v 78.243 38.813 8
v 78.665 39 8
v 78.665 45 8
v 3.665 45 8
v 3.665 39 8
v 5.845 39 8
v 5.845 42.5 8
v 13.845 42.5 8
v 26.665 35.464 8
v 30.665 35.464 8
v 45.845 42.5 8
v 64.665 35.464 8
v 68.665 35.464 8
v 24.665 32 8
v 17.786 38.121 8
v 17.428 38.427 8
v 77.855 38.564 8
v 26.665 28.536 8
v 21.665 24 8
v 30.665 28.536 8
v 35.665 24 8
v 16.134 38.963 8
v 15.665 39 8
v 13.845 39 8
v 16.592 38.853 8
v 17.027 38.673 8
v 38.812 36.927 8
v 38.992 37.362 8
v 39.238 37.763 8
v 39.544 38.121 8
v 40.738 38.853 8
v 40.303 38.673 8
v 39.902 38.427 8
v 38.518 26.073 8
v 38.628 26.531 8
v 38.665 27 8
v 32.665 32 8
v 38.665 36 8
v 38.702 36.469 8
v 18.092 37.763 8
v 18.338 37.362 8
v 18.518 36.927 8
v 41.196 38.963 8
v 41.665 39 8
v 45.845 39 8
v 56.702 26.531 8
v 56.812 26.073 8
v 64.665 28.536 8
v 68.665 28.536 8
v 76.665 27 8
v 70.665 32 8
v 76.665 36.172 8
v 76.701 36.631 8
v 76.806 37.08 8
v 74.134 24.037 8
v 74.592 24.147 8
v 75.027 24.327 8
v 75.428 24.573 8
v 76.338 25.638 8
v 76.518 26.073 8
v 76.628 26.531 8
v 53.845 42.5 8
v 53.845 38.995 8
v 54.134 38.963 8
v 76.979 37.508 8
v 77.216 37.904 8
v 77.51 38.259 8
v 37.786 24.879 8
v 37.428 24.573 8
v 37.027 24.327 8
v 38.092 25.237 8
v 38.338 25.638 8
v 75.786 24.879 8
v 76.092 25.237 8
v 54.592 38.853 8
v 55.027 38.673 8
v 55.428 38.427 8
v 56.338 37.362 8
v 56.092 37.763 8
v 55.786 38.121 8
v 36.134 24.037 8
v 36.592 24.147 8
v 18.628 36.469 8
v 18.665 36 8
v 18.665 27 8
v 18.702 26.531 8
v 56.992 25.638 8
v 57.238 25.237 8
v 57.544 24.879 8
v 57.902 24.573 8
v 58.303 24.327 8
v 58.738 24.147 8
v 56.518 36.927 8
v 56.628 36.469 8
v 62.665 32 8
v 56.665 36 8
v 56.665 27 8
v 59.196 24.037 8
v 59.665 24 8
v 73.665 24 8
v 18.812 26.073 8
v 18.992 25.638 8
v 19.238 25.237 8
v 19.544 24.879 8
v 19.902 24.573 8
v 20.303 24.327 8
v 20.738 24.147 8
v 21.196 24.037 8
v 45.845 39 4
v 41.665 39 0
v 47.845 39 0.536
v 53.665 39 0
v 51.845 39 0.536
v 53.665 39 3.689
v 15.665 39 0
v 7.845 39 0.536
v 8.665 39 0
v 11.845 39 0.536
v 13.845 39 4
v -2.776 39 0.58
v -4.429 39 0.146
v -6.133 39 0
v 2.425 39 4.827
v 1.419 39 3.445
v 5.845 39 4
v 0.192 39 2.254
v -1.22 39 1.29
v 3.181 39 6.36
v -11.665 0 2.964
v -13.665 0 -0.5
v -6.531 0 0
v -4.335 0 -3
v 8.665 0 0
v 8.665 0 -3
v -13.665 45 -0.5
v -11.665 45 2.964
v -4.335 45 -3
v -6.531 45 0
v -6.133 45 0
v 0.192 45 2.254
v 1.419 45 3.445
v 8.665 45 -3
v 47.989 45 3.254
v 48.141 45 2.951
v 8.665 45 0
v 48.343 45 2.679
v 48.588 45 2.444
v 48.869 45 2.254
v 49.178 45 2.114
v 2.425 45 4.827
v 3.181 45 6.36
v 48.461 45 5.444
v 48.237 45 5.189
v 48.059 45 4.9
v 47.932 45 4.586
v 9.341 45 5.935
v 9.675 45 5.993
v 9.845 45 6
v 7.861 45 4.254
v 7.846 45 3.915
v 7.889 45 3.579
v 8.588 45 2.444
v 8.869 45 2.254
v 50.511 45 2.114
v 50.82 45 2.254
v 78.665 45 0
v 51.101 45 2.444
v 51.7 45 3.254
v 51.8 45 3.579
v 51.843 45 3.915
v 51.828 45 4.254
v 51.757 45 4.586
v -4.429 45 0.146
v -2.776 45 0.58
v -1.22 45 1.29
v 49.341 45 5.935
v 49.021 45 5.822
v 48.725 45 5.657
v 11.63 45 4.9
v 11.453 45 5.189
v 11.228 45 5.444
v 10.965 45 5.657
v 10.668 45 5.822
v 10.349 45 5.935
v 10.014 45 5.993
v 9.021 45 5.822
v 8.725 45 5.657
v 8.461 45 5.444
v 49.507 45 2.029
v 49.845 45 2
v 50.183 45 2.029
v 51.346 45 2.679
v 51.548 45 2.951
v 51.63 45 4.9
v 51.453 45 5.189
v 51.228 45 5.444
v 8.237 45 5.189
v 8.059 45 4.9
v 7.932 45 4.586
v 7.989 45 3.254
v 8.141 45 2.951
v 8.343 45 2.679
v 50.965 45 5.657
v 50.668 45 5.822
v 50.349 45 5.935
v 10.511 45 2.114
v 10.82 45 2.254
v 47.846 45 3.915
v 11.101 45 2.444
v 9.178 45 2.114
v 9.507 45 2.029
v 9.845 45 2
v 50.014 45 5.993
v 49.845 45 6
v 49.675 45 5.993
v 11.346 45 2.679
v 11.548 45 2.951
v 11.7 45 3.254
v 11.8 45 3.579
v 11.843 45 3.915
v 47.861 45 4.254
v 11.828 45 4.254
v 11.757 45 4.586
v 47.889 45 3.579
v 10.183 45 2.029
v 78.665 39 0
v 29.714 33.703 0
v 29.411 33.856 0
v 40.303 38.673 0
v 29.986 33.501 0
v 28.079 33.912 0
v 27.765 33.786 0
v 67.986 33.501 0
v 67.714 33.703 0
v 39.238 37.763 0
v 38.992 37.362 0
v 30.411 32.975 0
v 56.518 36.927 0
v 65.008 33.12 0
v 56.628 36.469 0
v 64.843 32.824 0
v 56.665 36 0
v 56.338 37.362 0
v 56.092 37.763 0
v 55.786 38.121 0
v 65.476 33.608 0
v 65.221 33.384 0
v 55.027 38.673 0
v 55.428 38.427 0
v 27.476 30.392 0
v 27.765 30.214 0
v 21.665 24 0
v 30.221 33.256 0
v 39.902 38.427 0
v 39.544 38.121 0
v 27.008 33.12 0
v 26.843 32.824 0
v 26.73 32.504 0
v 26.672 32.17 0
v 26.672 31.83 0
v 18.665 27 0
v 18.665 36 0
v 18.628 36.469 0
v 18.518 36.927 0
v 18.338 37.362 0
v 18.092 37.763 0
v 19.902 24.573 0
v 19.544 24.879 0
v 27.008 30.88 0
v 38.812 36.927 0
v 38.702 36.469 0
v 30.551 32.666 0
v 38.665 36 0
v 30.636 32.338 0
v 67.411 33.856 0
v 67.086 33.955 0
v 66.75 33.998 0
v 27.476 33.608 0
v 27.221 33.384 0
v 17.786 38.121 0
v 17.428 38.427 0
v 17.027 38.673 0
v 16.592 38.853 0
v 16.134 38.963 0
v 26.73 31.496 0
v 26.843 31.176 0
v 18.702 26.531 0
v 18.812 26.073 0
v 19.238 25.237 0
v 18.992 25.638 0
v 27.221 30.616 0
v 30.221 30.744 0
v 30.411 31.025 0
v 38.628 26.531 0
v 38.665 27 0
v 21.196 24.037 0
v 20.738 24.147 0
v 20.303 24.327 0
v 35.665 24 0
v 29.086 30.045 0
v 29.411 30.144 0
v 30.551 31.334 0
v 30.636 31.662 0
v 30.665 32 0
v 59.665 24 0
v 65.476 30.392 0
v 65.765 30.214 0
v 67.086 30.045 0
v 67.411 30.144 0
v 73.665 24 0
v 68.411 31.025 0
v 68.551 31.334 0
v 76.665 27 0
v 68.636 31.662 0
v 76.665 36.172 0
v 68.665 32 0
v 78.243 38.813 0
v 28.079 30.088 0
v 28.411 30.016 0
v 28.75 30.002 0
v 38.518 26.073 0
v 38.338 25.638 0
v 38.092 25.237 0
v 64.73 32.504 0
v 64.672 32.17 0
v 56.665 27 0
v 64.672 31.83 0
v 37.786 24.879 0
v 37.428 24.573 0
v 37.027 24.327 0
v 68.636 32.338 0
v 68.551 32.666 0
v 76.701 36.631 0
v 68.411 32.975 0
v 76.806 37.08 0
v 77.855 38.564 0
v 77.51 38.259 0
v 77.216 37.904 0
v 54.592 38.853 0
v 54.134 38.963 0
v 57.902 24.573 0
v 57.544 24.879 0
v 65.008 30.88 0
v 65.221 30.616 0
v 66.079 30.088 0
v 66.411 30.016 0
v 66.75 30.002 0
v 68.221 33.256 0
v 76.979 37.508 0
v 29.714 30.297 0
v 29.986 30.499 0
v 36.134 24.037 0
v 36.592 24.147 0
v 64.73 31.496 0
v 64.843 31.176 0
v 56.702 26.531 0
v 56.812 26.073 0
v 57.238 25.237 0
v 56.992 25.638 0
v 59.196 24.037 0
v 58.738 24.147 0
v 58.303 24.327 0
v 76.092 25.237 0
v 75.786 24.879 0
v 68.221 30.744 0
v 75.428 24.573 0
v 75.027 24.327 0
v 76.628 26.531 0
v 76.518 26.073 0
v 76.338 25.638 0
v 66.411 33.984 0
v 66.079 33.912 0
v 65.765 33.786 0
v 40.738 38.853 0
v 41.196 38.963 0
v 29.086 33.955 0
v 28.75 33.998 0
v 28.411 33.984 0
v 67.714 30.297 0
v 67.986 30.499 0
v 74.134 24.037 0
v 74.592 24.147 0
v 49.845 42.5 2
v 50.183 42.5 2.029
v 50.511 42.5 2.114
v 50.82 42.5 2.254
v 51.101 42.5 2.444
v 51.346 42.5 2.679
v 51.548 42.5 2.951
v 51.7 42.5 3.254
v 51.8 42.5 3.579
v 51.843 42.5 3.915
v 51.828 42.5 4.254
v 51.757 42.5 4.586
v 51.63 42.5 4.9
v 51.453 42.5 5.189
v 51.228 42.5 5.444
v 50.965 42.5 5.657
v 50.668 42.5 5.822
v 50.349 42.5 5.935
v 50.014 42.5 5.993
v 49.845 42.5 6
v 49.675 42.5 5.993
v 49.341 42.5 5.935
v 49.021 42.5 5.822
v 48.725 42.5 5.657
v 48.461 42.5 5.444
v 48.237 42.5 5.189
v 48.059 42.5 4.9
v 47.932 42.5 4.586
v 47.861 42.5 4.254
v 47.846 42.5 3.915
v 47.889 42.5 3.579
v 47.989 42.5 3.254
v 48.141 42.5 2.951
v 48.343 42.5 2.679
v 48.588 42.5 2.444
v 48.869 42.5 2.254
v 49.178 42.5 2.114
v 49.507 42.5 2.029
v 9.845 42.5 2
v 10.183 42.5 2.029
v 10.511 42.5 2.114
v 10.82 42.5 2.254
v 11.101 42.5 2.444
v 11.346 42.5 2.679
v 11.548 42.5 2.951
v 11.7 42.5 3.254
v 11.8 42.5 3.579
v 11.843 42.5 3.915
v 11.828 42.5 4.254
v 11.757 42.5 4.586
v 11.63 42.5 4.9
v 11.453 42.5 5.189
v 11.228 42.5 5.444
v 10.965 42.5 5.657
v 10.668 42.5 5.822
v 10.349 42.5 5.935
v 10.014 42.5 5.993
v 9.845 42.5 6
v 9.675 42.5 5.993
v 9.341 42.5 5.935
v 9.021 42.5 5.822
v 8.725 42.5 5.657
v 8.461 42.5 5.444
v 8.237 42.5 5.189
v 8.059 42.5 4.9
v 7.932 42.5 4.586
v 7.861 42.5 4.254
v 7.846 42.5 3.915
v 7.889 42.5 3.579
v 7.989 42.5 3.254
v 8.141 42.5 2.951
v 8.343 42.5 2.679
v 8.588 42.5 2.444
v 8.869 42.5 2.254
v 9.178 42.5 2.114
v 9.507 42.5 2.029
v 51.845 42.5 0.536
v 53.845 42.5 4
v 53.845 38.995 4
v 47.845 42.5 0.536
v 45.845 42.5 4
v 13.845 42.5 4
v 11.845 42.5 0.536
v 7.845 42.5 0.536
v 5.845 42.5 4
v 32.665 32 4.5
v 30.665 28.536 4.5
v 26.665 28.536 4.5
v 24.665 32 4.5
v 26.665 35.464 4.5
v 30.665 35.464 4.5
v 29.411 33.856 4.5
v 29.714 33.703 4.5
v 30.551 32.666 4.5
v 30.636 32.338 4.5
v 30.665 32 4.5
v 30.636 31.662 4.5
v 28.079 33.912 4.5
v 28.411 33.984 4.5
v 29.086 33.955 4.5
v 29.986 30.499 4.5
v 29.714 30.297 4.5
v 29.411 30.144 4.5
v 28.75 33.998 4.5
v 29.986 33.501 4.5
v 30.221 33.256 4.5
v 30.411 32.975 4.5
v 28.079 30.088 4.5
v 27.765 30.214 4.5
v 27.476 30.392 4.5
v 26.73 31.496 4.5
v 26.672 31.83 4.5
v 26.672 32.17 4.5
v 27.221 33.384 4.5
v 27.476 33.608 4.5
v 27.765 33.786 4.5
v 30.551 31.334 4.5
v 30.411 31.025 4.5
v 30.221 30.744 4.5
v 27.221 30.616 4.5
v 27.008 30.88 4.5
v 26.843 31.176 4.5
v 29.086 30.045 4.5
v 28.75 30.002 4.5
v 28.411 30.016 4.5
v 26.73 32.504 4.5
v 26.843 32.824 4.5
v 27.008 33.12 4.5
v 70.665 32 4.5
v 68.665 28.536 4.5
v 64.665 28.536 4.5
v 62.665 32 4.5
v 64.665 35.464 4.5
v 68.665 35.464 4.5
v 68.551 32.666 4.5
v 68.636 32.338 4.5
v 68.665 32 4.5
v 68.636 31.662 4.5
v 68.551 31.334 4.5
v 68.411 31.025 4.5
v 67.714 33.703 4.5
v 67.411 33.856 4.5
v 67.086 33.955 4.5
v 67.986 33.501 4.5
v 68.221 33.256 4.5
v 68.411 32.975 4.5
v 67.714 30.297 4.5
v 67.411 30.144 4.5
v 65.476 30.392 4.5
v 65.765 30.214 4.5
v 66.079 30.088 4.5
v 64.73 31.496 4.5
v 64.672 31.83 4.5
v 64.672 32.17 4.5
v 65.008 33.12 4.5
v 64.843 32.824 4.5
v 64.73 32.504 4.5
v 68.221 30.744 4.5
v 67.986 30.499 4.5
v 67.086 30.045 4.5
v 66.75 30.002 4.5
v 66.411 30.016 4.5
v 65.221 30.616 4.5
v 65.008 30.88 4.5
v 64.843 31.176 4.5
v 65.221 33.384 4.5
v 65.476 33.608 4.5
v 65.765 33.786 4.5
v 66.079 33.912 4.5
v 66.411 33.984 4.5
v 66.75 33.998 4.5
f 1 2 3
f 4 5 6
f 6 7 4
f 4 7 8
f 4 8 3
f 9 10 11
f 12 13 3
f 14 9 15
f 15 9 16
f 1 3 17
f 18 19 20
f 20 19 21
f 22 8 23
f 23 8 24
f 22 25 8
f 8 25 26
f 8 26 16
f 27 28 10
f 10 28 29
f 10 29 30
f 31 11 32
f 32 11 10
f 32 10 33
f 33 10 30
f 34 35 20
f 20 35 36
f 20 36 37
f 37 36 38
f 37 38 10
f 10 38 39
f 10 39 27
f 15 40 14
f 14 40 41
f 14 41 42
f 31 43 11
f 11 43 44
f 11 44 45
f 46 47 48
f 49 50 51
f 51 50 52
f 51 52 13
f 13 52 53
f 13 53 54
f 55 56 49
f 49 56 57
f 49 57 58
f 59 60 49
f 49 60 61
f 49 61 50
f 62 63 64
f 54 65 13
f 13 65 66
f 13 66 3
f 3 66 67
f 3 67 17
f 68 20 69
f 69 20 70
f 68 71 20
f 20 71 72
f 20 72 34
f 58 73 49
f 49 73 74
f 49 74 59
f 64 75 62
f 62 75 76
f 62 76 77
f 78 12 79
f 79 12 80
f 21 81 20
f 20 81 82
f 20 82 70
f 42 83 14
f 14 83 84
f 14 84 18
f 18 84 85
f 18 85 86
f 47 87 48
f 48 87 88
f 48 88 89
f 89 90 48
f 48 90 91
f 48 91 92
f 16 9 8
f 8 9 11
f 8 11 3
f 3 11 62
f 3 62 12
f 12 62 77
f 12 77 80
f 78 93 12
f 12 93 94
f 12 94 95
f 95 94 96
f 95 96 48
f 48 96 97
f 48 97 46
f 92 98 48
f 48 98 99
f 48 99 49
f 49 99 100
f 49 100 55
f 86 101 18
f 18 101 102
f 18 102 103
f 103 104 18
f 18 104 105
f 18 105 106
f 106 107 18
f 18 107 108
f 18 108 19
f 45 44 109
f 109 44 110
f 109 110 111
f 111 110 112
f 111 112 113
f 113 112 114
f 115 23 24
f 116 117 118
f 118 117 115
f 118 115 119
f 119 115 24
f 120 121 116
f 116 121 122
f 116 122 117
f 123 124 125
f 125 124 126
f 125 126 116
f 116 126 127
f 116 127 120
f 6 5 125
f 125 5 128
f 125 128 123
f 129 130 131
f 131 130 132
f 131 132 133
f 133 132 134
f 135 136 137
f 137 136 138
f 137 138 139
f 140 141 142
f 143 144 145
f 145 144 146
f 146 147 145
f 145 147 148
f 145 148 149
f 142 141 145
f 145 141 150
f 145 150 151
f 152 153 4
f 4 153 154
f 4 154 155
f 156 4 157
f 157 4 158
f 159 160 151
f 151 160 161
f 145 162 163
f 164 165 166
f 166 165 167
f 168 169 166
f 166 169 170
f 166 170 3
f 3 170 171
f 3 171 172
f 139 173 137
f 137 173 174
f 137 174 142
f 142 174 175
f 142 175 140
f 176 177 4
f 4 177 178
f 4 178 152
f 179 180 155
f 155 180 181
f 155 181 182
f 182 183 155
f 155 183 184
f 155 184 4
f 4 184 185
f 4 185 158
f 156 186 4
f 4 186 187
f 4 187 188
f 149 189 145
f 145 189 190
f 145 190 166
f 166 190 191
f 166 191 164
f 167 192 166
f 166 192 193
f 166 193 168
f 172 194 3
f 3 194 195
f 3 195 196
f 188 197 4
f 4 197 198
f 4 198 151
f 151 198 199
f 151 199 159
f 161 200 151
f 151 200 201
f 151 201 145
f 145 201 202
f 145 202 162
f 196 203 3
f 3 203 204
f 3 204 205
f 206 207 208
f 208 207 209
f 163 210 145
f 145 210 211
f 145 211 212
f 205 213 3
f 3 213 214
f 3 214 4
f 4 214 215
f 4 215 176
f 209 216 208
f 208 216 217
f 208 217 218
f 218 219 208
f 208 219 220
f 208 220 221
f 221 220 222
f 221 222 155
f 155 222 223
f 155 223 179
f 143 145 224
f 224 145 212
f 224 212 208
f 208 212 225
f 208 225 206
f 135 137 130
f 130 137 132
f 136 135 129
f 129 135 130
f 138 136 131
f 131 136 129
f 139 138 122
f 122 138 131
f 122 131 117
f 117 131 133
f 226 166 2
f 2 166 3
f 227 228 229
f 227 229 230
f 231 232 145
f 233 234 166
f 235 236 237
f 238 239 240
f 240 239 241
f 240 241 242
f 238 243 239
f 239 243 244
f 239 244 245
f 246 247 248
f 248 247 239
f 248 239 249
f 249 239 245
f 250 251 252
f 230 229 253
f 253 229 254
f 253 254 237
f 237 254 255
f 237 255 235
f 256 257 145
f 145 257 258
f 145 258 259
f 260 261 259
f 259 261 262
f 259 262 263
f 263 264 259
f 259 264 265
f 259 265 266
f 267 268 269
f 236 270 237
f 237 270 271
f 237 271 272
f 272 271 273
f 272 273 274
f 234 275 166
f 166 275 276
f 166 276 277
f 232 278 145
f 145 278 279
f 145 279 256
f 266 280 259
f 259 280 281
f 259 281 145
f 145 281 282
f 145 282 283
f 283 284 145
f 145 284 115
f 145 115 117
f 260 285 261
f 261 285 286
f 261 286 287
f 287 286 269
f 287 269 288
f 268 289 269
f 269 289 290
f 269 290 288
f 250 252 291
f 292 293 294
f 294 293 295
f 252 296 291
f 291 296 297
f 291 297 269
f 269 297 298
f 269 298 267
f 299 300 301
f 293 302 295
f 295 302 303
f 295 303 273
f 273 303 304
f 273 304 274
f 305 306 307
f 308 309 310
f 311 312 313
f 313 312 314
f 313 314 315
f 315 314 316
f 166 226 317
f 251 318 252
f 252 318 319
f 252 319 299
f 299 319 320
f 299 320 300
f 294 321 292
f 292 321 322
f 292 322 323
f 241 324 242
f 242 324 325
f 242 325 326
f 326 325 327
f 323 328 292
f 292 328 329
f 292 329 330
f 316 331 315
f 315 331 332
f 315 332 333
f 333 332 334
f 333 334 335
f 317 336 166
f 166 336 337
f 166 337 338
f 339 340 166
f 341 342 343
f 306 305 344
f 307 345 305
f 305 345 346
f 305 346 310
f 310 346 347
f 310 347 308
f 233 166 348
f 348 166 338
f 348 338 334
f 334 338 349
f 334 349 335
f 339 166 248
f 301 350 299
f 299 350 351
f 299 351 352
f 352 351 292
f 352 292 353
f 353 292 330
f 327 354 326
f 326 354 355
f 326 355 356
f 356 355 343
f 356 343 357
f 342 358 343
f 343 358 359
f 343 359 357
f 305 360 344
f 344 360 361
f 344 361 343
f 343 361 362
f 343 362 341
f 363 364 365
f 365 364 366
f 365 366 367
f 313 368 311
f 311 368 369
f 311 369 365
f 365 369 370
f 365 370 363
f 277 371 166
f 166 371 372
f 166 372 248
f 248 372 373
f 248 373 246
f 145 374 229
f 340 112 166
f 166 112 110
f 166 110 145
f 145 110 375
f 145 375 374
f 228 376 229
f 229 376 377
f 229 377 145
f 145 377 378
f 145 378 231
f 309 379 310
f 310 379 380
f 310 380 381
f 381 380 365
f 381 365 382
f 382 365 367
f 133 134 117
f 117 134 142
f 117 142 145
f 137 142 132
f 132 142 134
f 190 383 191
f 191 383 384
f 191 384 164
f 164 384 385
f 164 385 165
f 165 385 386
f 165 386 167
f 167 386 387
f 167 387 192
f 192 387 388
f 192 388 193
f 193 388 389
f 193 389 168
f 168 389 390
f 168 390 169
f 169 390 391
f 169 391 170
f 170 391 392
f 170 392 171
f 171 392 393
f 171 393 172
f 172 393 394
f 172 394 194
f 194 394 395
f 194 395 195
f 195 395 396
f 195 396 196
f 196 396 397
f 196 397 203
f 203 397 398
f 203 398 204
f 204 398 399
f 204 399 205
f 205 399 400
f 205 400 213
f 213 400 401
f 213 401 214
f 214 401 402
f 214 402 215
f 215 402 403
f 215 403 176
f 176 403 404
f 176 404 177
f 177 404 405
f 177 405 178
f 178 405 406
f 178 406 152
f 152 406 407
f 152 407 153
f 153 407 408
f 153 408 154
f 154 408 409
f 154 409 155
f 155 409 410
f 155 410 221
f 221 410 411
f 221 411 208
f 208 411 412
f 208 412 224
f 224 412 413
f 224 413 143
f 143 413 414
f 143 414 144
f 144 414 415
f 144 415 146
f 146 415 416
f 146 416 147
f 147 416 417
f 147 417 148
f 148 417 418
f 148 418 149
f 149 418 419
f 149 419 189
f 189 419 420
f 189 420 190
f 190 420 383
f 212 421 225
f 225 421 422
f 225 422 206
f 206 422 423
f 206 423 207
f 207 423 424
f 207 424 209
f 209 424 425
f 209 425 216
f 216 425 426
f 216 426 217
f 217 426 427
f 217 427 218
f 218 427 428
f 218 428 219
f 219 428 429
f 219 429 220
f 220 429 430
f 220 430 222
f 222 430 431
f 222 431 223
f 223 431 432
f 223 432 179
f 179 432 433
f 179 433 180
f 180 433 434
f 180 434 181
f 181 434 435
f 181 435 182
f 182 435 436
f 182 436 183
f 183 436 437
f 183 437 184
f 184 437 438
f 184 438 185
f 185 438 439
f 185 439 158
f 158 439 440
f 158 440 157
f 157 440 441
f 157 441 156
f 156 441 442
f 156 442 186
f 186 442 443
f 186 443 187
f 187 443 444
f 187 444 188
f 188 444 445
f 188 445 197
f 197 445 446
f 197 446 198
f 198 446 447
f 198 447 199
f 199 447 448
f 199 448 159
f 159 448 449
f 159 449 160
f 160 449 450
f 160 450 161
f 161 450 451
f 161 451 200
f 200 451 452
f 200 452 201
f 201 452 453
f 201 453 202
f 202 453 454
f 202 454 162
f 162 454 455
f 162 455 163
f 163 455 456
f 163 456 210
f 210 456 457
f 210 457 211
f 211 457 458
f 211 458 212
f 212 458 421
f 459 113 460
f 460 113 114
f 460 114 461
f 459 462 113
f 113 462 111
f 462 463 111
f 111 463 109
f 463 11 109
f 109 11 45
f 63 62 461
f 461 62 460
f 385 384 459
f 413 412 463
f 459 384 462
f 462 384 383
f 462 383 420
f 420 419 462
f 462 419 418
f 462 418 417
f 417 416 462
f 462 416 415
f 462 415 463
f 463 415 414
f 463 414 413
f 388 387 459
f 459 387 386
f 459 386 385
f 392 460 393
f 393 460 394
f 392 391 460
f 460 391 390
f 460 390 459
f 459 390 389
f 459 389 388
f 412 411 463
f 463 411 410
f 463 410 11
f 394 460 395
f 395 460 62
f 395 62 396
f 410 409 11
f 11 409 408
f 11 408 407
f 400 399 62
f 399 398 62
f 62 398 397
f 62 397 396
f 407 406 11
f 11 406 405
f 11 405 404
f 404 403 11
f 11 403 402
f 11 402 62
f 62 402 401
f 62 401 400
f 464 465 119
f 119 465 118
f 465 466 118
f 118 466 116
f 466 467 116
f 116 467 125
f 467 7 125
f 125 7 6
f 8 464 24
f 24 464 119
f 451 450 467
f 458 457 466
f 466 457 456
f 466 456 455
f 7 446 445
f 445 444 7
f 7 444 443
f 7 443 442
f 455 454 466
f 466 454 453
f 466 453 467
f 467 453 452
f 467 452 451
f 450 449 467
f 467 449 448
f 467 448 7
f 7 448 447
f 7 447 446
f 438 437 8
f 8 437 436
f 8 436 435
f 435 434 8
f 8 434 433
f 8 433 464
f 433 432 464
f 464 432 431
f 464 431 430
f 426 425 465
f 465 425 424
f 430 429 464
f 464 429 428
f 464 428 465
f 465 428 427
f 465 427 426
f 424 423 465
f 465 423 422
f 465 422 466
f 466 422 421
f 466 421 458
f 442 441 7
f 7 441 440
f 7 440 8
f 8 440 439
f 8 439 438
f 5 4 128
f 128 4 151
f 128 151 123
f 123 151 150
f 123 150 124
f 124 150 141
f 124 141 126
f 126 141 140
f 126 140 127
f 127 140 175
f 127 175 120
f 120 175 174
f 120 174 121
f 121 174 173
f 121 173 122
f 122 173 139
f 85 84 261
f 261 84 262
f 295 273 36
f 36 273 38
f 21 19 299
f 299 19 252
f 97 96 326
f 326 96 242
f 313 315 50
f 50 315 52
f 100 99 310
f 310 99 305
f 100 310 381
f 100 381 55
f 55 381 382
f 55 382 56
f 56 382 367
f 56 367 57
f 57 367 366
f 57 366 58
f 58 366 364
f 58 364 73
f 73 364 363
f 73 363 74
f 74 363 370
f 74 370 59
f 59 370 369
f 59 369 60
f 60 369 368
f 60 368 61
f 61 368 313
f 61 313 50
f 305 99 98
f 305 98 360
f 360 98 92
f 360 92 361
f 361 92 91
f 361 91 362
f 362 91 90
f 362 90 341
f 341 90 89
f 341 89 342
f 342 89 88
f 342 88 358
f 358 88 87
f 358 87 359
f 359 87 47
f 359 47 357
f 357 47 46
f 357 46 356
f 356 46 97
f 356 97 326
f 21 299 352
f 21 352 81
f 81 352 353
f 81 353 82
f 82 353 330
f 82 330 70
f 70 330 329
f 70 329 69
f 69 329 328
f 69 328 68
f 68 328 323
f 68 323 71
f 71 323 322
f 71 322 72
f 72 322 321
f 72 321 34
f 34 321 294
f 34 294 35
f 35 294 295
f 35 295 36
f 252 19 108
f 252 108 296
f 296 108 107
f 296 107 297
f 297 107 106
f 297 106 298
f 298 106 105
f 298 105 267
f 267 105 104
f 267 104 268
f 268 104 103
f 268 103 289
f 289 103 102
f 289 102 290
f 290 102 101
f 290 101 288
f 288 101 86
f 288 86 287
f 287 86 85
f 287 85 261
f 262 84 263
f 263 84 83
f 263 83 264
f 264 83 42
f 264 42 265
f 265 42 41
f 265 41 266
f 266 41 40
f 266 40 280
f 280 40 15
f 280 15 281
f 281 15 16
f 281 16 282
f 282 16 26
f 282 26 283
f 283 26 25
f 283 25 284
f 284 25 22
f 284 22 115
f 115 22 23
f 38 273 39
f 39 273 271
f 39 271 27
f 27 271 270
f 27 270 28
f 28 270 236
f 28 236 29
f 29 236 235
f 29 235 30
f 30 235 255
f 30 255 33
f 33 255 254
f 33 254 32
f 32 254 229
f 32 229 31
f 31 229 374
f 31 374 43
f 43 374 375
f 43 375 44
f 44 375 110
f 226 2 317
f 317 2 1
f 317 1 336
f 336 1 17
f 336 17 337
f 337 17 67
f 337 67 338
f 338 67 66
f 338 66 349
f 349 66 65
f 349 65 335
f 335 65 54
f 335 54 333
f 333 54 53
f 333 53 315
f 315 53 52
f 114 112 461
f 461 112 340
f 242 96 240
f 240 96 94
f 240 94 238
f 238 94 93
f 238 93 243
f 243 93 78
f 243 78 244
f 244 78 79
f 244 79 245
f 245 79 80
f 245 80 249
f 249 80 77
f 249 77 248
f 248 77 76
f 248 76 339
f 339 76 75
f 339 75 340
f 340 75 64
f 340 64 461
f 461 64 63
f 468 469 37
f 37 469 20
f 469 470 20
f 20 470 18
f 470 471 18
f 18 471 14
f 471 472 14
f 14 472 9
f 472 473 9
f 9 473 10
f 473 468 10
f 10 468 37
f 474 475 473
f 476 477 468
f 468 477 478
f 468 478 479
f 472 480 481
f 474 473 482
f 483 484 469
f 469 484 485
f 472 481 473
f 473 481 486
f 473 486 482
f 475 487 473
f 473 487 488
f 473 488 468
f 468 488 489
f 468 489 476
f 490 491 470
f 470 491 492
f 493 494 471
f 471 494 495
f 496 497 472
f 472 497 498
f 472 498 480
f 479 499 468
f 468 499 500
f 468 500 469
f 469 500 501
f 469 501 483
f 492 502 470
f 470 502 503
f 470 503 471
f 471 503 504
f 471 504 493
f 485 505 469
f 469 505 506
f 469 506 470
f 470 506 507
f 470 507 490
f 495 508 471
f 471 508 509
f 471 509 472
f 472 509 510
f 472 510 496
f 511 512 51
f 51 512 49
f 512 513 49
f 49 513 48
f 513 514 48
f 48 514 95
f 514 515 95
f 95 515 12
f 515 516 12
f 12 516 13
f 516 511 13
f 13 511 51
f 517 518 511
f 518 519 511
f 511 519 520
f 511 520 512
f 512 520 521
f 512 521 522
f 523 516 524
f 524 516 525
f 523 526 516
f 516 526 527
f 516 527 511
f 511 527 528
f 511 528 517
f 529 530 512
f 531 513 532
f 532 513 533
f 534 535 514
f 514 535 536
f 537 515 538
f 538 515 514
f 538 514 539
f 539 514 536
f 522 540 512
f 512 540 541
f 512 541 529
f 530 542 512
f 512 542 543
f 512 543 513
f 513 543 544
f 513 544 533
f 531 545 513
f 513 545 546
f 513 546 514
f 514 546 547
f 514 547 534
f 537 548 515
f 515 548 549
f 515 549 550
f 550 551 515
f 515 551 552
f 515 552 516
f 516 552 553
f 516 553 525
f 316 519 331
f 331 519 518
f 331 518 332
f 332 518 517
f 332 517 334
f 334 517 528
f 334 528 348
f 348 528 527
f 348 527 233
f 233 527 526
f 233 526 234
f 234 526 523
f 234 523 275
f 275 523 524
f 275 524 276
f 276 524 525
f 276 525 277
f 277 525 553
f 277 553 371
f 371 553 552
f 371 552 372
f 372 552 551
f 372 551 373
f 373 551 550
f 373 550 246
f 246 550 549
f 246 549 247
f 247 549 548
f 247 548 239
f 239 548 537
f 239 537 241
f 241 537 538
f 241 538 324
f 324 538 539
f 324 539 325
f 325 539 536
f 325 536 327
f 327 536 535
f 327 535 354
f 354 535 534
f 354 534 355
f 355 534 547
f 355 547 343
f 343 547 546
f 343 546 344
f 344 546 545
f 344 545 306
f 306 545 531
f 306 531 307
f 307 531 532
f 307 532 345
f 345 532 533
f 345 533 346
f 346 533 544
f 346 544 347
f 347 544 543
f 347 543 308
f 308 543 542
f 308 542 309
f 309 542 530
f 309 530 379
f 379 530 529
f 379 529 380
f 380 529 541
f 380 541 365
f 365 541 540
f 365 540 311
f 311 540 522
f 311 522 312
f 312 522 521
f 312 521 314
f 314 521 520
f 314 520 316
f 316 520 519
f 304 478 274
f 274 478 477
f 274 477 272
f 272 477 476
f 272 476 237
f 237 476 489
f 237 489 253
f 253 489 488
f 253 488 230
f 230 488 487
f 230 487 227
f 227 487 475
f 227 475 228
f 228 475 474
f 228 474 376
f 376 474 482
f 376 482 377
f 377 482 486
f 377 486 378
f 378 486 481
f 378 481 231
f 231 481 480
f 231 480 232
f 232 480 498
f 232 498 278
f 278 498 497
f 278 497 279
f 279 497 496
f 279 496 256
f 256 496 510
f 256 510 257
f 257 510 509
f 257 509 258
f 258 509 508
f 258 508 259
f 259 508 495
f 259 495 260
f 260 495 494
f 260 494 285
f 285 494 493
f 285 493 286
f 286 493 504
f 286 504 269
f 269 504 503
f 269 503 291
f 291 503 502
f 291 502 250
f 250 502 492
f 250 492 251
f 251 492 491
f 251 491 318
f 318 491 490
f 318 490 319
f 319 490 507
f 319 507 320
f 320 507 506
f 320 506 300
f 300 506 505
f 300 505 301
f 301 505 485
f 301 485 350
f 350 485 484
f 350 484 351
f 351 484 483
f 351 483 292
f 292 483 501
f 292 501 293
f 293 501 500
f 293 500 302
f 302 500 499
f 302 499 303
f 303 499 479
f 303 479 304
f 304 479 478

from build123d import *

# Parameters (mm, degrees)
ESQUISSE1_R             = 2
BOSS_EXTRU_1_DEPTH      = 45
ESQUISSE2_W             = 75
ESQUISSE2_H             = 39
ENL_V_MAT_EXTRU_1_DEPTH = 8
ENL_V_MAT_EXTRU_2_DEPTH = 3.5
CONG_1_R                = 10
ESQUISSE4_W             = 20
ESQUISSE4_H             = 8
BOSS_EXTRU_2_DEPTH      = 15
CONG_3_R                = 3
ENL_V_MAT_EXTRU_3_DEPTH = 3.5
ESQUISSE6_R             = 2
ENL_V_MAT_EXTRU_4_DEPTH = 91.936473524


with BuildPart() as part:
    # Esquisse1 → Boss.-Extru.1 (new body)
    with BuildSketch(Plane(origin=(0, 0, 0), x_dir=(1, 0, 0), z_dir=(0, 1, 0))):
        Polygon((-13.665063509, 0.5), (-11.665063509, -2.964101615), (-6.531088913, 0), (3.665063509, 0), (3.665063509, -8), (78.665063509, -8), (78.665063509, 0), (8.665063509, 0), (8.665063509, 3), (-4.334936491, 3), align=None)
        with Locations(Location((49.844555434, -4, 0), (0, 0, 90))):
            Circle(ESQUISSE1_R, mode=Mode.SUBTRACT)
        with Locations(Location((9.844555434, -4, 0), (0, 0, 90))):
            Circle(ESQUISSE1_R, mode=Mode.SUBTRACT)
    extrude(amount=BOSS_EXTRU_1_DEPTH)

    # Esquisse2 → Enlèv. mat.-Extru.1 (cut)
    with BuildSketch(Plane.XY.offset(8)):
        with Locations((41.165063509, 19.5)):
            Rectangle(ESQUISSE2_W, ESQUISSE2_H)
    extrude(amount=-ENL_V_MAT_EXTRU_1_DEPTH, mode=Mode.SUBTRACT)

    # Esquisse3 → Enlèv. mat.-Extru.2 (cut)
    with BuildSketch(Plane.XZ.offset(-39)):
        Polygon((51.844555434, 0.535898385), (47.844555434, 0.535898385), (45.844555434, 4), (45.844555434, 8), (53.844555434, 8), (53.844555434, 4), align=None)
        Polygon((11.844555434, 0.535898385), (7.844555434, 0.535898385), (5.844555434, 4), (5.844555434, 8), (13.844555434, 8), (13.844555434, 4), align=None)
    extrude(amount=-ENL_V_MAT_EXTRU_2_DEPTH, mode=Mode.SUBTRACT)

    # Congé1
    # the kernel refuses this fillet: 10 mm, written as the material it adds along each edge
    with BuildSketch(Plane(origin=(3.665063509, 39, 0), x_dir=(-1, 0, 0), z_dir=(0, 1, 0))) as cong_1_piece_1:
        with BuildLine():
            CenterArc((9.797958971, 10), CONG_1_R, 191.536959033, 78.463040967)
            Line((0, 8), (-0.195959179, 7.96))
            ThreePointArc((-0.195959179, 7.96), (-0.2, 4), (-0.2, 0))
            Line((-0.2, 0), (0, -0.2))
            Line((0, -0.2), (9.797958971, -0.2))
            Line((9.797958971, -0.2), (9.797958971, 0))
        make_face()
    extrude(amount=6)

    # Esquisse4 → Boss.-Extru.2 (add)
    with BuildSketch(Plane.XZ.offset(-39)):
        with Locations((28.665063509, 4)):
            Rectangle(ESQUISSE4_W, ESQUISSE4_H)
        with Locations((66.665063509, 4)):
            Rectangle(ESQUISSE4_W, ESQUISSE4_H)
    extrude(amount=BOSS_EXTRU_2_DEPTH)

    # Congé3
    # the kernel refuses this fillet: 3 mm, written as the material it adds along each edge
    with BuildSketch(Plane(origin=(18.665063509, 39, 0), x_dir=(-1, 0, 0), z_dir=(0, 0, 1)), Plane(origin=(38.665063509, 39, 8), x_dir=(1, 0, 0), z_dir=(0, 0, -1))) as cong_3_piece_1:
        with BuildLine():
            CenterArc((CONG_3_R, CONG_3_R), CONG_3_R, 180, 90)
            Line((0, CONG_3_R), (0, 0))
            Line((0, 0), (CONG_3_R, 0))
        make_face()
    extrude(amount=8)
    with BuildSketch(Plane(origin=(76.665063509, 39, 8), x_dir=(1, 0, 0), z_dir=(0, 0, -1))) as cong_3_piece_2:
        with BuildLine():
            CenterArc((3, 2.828427125), CONG_3_R, 180, 70.528779366)
            Line((0, 2.828427125), (0, 0))
            Line((0, 0), (2, 0))
        make_face()
    extrude(amount=8)
    with BuildSketch(Plane(origin=(56.665063509, 39, 0), x_dir=(-1, 0, 0), z_dir=(0, 0, 1))) as cong_3_piece_3_section:
        with BuildLine():
            CenterArc((CONG_3_R, CONG_3_R), CONG_3_R, 180, 90)
            Line((0, CONG_3_R), (0, 0))
            Line((0, 0), (CONG_3_R, 0))
        make_face()
    cong_3_piece_3 = extrude(amount=8, mode=Mode.PRIVATE)
    cong_3_piece_3 = split(cong_3_piece_3, bisect_by=Plane(origin=(52.817631645, 39, 2.221315823), z_dir=(0.8660254037844395, 0, -0.4999999999999987)), keep=Keep.TOP, mode=Mode.PRIVATE)
    add(cong_3_piece_3)
    with BuildSketch(Plane(origin=(56.665063509, 39, -7.5), x_dir=(-1, 0, 0), z_dir=(0, 0, 1))) as cong_3_piece_4_section:
        with BuildLine():
            CenterArc((CONG_3_R, CONG_3_R), CONG_3_R, 180, 90)
            Line((0, CONG_3_R), (0, 0))
            Line((0, 0), (CONG_3_R, 0))
        make_face()
    cong_3_piece_4 = extrude(amount=15.5, mode=Mode.PRIVATE)
    cong_3_piece_4 = split(cong_3_piece_4, bisect_by=Plane(origin=(53.844555434, 39, -7.5), z_dir=(1, 0, 0)), keep=Keep.TOP, mode=Mode.PRIVATE)
    cong_3_piece_4 = split(cong_3_piece_4, bisect_by=Plane(origin=(49.570036381, 39, -3.403684177), z_dir=(-0.8660254037844395, 0, 0.4999999999999987)), keep=Keep.TOP, mode=Mode.PRIVATE)
    add(cong_3_piece_4)
    # the kernel refuses this fillet: 3 mm, written as the material it takes off along each edge
    with BuildSketch(Plane(origin=(76.665063509, 24, 15.5), x_dir=(-1, 0, 0), z_dir=(0, 0, -1)), Plane(origin=(18.665063509, 24, -7.5), x_dir=(1, 0, 0), z_dir=(0, 0, 1))) as cong_3_2_piece_1:
        with BuildLine():
            CenterArc((CONG_3_R, CONG_3_R), CONG_3_R, 180, 90)
            Line((0, CONG_3_R), (0, 0))
            Line((0, 0), (CONG_3_R, 0))
        make_face()
    extrude(amount=23, mode=Mode.SUBTRACT)
    with BuildSketch(Plane(origin=(56.665063509, 24, -7.5), x_dir=(0, 1, 0), z_dir=(0, 0, 1)), Plane(origin=(38.665063509, 24, 15.5), x_dir=(0, 1, 0), z_dir=(0, 0, -1))) as cong_3_2_piece_2:
        with BuildLine():
            CenterArc((CONG_3_R, -CONG_3_R), CONG_3_R, 90, 90)
            Line((0, -CONG_3_R), (0, 0))
            Line((0, 0), (CONG_3_R, 0))
        make_face()
    extrude(amount=23, mode=Mode.SUBTRACT)

    # Esquisse5 → Enlèv. mat.-Extru.3 (cut)
    with BuildSketch(Plane.XY.offset(8)):
        Polygon((32.665063509, 32), (30.665063509, 28.535898385), (26.665063509, 28.535898385), (24.665063509, 32), (26.665063509, 35.464101615), (30.665063509, 35.464101615), align=None)
        Polygon((70.665063509, 32), (68.665063509, 28.535898385), (64.665063509, 28.535898385), (62.665063509, 32), (64.665063509, 35.464101615), (68.665063509, 35.464101615), align=None)
    extrude(amount=-ENL_V_MAT_EXTRU_3_DEPTH, mode=Mode.SUBTRACT)

    # Esquisse6 → Enlèv. mat.-Extru.4 (cut, through all)
    with BuildSketch(Plane.XY.offset(4.5)):
        with Locations((28.665063509, 32)):
            Circle(ESQUISSE6_R)
        with Locations((66.665063509, 32)):
            Circle(ESQUISSE6_R)
    extrude(amount=-ENL_V_MAT_EXTRU_4_DEPTH, mode=Mode.SUBTRACT)


solid = part.part
